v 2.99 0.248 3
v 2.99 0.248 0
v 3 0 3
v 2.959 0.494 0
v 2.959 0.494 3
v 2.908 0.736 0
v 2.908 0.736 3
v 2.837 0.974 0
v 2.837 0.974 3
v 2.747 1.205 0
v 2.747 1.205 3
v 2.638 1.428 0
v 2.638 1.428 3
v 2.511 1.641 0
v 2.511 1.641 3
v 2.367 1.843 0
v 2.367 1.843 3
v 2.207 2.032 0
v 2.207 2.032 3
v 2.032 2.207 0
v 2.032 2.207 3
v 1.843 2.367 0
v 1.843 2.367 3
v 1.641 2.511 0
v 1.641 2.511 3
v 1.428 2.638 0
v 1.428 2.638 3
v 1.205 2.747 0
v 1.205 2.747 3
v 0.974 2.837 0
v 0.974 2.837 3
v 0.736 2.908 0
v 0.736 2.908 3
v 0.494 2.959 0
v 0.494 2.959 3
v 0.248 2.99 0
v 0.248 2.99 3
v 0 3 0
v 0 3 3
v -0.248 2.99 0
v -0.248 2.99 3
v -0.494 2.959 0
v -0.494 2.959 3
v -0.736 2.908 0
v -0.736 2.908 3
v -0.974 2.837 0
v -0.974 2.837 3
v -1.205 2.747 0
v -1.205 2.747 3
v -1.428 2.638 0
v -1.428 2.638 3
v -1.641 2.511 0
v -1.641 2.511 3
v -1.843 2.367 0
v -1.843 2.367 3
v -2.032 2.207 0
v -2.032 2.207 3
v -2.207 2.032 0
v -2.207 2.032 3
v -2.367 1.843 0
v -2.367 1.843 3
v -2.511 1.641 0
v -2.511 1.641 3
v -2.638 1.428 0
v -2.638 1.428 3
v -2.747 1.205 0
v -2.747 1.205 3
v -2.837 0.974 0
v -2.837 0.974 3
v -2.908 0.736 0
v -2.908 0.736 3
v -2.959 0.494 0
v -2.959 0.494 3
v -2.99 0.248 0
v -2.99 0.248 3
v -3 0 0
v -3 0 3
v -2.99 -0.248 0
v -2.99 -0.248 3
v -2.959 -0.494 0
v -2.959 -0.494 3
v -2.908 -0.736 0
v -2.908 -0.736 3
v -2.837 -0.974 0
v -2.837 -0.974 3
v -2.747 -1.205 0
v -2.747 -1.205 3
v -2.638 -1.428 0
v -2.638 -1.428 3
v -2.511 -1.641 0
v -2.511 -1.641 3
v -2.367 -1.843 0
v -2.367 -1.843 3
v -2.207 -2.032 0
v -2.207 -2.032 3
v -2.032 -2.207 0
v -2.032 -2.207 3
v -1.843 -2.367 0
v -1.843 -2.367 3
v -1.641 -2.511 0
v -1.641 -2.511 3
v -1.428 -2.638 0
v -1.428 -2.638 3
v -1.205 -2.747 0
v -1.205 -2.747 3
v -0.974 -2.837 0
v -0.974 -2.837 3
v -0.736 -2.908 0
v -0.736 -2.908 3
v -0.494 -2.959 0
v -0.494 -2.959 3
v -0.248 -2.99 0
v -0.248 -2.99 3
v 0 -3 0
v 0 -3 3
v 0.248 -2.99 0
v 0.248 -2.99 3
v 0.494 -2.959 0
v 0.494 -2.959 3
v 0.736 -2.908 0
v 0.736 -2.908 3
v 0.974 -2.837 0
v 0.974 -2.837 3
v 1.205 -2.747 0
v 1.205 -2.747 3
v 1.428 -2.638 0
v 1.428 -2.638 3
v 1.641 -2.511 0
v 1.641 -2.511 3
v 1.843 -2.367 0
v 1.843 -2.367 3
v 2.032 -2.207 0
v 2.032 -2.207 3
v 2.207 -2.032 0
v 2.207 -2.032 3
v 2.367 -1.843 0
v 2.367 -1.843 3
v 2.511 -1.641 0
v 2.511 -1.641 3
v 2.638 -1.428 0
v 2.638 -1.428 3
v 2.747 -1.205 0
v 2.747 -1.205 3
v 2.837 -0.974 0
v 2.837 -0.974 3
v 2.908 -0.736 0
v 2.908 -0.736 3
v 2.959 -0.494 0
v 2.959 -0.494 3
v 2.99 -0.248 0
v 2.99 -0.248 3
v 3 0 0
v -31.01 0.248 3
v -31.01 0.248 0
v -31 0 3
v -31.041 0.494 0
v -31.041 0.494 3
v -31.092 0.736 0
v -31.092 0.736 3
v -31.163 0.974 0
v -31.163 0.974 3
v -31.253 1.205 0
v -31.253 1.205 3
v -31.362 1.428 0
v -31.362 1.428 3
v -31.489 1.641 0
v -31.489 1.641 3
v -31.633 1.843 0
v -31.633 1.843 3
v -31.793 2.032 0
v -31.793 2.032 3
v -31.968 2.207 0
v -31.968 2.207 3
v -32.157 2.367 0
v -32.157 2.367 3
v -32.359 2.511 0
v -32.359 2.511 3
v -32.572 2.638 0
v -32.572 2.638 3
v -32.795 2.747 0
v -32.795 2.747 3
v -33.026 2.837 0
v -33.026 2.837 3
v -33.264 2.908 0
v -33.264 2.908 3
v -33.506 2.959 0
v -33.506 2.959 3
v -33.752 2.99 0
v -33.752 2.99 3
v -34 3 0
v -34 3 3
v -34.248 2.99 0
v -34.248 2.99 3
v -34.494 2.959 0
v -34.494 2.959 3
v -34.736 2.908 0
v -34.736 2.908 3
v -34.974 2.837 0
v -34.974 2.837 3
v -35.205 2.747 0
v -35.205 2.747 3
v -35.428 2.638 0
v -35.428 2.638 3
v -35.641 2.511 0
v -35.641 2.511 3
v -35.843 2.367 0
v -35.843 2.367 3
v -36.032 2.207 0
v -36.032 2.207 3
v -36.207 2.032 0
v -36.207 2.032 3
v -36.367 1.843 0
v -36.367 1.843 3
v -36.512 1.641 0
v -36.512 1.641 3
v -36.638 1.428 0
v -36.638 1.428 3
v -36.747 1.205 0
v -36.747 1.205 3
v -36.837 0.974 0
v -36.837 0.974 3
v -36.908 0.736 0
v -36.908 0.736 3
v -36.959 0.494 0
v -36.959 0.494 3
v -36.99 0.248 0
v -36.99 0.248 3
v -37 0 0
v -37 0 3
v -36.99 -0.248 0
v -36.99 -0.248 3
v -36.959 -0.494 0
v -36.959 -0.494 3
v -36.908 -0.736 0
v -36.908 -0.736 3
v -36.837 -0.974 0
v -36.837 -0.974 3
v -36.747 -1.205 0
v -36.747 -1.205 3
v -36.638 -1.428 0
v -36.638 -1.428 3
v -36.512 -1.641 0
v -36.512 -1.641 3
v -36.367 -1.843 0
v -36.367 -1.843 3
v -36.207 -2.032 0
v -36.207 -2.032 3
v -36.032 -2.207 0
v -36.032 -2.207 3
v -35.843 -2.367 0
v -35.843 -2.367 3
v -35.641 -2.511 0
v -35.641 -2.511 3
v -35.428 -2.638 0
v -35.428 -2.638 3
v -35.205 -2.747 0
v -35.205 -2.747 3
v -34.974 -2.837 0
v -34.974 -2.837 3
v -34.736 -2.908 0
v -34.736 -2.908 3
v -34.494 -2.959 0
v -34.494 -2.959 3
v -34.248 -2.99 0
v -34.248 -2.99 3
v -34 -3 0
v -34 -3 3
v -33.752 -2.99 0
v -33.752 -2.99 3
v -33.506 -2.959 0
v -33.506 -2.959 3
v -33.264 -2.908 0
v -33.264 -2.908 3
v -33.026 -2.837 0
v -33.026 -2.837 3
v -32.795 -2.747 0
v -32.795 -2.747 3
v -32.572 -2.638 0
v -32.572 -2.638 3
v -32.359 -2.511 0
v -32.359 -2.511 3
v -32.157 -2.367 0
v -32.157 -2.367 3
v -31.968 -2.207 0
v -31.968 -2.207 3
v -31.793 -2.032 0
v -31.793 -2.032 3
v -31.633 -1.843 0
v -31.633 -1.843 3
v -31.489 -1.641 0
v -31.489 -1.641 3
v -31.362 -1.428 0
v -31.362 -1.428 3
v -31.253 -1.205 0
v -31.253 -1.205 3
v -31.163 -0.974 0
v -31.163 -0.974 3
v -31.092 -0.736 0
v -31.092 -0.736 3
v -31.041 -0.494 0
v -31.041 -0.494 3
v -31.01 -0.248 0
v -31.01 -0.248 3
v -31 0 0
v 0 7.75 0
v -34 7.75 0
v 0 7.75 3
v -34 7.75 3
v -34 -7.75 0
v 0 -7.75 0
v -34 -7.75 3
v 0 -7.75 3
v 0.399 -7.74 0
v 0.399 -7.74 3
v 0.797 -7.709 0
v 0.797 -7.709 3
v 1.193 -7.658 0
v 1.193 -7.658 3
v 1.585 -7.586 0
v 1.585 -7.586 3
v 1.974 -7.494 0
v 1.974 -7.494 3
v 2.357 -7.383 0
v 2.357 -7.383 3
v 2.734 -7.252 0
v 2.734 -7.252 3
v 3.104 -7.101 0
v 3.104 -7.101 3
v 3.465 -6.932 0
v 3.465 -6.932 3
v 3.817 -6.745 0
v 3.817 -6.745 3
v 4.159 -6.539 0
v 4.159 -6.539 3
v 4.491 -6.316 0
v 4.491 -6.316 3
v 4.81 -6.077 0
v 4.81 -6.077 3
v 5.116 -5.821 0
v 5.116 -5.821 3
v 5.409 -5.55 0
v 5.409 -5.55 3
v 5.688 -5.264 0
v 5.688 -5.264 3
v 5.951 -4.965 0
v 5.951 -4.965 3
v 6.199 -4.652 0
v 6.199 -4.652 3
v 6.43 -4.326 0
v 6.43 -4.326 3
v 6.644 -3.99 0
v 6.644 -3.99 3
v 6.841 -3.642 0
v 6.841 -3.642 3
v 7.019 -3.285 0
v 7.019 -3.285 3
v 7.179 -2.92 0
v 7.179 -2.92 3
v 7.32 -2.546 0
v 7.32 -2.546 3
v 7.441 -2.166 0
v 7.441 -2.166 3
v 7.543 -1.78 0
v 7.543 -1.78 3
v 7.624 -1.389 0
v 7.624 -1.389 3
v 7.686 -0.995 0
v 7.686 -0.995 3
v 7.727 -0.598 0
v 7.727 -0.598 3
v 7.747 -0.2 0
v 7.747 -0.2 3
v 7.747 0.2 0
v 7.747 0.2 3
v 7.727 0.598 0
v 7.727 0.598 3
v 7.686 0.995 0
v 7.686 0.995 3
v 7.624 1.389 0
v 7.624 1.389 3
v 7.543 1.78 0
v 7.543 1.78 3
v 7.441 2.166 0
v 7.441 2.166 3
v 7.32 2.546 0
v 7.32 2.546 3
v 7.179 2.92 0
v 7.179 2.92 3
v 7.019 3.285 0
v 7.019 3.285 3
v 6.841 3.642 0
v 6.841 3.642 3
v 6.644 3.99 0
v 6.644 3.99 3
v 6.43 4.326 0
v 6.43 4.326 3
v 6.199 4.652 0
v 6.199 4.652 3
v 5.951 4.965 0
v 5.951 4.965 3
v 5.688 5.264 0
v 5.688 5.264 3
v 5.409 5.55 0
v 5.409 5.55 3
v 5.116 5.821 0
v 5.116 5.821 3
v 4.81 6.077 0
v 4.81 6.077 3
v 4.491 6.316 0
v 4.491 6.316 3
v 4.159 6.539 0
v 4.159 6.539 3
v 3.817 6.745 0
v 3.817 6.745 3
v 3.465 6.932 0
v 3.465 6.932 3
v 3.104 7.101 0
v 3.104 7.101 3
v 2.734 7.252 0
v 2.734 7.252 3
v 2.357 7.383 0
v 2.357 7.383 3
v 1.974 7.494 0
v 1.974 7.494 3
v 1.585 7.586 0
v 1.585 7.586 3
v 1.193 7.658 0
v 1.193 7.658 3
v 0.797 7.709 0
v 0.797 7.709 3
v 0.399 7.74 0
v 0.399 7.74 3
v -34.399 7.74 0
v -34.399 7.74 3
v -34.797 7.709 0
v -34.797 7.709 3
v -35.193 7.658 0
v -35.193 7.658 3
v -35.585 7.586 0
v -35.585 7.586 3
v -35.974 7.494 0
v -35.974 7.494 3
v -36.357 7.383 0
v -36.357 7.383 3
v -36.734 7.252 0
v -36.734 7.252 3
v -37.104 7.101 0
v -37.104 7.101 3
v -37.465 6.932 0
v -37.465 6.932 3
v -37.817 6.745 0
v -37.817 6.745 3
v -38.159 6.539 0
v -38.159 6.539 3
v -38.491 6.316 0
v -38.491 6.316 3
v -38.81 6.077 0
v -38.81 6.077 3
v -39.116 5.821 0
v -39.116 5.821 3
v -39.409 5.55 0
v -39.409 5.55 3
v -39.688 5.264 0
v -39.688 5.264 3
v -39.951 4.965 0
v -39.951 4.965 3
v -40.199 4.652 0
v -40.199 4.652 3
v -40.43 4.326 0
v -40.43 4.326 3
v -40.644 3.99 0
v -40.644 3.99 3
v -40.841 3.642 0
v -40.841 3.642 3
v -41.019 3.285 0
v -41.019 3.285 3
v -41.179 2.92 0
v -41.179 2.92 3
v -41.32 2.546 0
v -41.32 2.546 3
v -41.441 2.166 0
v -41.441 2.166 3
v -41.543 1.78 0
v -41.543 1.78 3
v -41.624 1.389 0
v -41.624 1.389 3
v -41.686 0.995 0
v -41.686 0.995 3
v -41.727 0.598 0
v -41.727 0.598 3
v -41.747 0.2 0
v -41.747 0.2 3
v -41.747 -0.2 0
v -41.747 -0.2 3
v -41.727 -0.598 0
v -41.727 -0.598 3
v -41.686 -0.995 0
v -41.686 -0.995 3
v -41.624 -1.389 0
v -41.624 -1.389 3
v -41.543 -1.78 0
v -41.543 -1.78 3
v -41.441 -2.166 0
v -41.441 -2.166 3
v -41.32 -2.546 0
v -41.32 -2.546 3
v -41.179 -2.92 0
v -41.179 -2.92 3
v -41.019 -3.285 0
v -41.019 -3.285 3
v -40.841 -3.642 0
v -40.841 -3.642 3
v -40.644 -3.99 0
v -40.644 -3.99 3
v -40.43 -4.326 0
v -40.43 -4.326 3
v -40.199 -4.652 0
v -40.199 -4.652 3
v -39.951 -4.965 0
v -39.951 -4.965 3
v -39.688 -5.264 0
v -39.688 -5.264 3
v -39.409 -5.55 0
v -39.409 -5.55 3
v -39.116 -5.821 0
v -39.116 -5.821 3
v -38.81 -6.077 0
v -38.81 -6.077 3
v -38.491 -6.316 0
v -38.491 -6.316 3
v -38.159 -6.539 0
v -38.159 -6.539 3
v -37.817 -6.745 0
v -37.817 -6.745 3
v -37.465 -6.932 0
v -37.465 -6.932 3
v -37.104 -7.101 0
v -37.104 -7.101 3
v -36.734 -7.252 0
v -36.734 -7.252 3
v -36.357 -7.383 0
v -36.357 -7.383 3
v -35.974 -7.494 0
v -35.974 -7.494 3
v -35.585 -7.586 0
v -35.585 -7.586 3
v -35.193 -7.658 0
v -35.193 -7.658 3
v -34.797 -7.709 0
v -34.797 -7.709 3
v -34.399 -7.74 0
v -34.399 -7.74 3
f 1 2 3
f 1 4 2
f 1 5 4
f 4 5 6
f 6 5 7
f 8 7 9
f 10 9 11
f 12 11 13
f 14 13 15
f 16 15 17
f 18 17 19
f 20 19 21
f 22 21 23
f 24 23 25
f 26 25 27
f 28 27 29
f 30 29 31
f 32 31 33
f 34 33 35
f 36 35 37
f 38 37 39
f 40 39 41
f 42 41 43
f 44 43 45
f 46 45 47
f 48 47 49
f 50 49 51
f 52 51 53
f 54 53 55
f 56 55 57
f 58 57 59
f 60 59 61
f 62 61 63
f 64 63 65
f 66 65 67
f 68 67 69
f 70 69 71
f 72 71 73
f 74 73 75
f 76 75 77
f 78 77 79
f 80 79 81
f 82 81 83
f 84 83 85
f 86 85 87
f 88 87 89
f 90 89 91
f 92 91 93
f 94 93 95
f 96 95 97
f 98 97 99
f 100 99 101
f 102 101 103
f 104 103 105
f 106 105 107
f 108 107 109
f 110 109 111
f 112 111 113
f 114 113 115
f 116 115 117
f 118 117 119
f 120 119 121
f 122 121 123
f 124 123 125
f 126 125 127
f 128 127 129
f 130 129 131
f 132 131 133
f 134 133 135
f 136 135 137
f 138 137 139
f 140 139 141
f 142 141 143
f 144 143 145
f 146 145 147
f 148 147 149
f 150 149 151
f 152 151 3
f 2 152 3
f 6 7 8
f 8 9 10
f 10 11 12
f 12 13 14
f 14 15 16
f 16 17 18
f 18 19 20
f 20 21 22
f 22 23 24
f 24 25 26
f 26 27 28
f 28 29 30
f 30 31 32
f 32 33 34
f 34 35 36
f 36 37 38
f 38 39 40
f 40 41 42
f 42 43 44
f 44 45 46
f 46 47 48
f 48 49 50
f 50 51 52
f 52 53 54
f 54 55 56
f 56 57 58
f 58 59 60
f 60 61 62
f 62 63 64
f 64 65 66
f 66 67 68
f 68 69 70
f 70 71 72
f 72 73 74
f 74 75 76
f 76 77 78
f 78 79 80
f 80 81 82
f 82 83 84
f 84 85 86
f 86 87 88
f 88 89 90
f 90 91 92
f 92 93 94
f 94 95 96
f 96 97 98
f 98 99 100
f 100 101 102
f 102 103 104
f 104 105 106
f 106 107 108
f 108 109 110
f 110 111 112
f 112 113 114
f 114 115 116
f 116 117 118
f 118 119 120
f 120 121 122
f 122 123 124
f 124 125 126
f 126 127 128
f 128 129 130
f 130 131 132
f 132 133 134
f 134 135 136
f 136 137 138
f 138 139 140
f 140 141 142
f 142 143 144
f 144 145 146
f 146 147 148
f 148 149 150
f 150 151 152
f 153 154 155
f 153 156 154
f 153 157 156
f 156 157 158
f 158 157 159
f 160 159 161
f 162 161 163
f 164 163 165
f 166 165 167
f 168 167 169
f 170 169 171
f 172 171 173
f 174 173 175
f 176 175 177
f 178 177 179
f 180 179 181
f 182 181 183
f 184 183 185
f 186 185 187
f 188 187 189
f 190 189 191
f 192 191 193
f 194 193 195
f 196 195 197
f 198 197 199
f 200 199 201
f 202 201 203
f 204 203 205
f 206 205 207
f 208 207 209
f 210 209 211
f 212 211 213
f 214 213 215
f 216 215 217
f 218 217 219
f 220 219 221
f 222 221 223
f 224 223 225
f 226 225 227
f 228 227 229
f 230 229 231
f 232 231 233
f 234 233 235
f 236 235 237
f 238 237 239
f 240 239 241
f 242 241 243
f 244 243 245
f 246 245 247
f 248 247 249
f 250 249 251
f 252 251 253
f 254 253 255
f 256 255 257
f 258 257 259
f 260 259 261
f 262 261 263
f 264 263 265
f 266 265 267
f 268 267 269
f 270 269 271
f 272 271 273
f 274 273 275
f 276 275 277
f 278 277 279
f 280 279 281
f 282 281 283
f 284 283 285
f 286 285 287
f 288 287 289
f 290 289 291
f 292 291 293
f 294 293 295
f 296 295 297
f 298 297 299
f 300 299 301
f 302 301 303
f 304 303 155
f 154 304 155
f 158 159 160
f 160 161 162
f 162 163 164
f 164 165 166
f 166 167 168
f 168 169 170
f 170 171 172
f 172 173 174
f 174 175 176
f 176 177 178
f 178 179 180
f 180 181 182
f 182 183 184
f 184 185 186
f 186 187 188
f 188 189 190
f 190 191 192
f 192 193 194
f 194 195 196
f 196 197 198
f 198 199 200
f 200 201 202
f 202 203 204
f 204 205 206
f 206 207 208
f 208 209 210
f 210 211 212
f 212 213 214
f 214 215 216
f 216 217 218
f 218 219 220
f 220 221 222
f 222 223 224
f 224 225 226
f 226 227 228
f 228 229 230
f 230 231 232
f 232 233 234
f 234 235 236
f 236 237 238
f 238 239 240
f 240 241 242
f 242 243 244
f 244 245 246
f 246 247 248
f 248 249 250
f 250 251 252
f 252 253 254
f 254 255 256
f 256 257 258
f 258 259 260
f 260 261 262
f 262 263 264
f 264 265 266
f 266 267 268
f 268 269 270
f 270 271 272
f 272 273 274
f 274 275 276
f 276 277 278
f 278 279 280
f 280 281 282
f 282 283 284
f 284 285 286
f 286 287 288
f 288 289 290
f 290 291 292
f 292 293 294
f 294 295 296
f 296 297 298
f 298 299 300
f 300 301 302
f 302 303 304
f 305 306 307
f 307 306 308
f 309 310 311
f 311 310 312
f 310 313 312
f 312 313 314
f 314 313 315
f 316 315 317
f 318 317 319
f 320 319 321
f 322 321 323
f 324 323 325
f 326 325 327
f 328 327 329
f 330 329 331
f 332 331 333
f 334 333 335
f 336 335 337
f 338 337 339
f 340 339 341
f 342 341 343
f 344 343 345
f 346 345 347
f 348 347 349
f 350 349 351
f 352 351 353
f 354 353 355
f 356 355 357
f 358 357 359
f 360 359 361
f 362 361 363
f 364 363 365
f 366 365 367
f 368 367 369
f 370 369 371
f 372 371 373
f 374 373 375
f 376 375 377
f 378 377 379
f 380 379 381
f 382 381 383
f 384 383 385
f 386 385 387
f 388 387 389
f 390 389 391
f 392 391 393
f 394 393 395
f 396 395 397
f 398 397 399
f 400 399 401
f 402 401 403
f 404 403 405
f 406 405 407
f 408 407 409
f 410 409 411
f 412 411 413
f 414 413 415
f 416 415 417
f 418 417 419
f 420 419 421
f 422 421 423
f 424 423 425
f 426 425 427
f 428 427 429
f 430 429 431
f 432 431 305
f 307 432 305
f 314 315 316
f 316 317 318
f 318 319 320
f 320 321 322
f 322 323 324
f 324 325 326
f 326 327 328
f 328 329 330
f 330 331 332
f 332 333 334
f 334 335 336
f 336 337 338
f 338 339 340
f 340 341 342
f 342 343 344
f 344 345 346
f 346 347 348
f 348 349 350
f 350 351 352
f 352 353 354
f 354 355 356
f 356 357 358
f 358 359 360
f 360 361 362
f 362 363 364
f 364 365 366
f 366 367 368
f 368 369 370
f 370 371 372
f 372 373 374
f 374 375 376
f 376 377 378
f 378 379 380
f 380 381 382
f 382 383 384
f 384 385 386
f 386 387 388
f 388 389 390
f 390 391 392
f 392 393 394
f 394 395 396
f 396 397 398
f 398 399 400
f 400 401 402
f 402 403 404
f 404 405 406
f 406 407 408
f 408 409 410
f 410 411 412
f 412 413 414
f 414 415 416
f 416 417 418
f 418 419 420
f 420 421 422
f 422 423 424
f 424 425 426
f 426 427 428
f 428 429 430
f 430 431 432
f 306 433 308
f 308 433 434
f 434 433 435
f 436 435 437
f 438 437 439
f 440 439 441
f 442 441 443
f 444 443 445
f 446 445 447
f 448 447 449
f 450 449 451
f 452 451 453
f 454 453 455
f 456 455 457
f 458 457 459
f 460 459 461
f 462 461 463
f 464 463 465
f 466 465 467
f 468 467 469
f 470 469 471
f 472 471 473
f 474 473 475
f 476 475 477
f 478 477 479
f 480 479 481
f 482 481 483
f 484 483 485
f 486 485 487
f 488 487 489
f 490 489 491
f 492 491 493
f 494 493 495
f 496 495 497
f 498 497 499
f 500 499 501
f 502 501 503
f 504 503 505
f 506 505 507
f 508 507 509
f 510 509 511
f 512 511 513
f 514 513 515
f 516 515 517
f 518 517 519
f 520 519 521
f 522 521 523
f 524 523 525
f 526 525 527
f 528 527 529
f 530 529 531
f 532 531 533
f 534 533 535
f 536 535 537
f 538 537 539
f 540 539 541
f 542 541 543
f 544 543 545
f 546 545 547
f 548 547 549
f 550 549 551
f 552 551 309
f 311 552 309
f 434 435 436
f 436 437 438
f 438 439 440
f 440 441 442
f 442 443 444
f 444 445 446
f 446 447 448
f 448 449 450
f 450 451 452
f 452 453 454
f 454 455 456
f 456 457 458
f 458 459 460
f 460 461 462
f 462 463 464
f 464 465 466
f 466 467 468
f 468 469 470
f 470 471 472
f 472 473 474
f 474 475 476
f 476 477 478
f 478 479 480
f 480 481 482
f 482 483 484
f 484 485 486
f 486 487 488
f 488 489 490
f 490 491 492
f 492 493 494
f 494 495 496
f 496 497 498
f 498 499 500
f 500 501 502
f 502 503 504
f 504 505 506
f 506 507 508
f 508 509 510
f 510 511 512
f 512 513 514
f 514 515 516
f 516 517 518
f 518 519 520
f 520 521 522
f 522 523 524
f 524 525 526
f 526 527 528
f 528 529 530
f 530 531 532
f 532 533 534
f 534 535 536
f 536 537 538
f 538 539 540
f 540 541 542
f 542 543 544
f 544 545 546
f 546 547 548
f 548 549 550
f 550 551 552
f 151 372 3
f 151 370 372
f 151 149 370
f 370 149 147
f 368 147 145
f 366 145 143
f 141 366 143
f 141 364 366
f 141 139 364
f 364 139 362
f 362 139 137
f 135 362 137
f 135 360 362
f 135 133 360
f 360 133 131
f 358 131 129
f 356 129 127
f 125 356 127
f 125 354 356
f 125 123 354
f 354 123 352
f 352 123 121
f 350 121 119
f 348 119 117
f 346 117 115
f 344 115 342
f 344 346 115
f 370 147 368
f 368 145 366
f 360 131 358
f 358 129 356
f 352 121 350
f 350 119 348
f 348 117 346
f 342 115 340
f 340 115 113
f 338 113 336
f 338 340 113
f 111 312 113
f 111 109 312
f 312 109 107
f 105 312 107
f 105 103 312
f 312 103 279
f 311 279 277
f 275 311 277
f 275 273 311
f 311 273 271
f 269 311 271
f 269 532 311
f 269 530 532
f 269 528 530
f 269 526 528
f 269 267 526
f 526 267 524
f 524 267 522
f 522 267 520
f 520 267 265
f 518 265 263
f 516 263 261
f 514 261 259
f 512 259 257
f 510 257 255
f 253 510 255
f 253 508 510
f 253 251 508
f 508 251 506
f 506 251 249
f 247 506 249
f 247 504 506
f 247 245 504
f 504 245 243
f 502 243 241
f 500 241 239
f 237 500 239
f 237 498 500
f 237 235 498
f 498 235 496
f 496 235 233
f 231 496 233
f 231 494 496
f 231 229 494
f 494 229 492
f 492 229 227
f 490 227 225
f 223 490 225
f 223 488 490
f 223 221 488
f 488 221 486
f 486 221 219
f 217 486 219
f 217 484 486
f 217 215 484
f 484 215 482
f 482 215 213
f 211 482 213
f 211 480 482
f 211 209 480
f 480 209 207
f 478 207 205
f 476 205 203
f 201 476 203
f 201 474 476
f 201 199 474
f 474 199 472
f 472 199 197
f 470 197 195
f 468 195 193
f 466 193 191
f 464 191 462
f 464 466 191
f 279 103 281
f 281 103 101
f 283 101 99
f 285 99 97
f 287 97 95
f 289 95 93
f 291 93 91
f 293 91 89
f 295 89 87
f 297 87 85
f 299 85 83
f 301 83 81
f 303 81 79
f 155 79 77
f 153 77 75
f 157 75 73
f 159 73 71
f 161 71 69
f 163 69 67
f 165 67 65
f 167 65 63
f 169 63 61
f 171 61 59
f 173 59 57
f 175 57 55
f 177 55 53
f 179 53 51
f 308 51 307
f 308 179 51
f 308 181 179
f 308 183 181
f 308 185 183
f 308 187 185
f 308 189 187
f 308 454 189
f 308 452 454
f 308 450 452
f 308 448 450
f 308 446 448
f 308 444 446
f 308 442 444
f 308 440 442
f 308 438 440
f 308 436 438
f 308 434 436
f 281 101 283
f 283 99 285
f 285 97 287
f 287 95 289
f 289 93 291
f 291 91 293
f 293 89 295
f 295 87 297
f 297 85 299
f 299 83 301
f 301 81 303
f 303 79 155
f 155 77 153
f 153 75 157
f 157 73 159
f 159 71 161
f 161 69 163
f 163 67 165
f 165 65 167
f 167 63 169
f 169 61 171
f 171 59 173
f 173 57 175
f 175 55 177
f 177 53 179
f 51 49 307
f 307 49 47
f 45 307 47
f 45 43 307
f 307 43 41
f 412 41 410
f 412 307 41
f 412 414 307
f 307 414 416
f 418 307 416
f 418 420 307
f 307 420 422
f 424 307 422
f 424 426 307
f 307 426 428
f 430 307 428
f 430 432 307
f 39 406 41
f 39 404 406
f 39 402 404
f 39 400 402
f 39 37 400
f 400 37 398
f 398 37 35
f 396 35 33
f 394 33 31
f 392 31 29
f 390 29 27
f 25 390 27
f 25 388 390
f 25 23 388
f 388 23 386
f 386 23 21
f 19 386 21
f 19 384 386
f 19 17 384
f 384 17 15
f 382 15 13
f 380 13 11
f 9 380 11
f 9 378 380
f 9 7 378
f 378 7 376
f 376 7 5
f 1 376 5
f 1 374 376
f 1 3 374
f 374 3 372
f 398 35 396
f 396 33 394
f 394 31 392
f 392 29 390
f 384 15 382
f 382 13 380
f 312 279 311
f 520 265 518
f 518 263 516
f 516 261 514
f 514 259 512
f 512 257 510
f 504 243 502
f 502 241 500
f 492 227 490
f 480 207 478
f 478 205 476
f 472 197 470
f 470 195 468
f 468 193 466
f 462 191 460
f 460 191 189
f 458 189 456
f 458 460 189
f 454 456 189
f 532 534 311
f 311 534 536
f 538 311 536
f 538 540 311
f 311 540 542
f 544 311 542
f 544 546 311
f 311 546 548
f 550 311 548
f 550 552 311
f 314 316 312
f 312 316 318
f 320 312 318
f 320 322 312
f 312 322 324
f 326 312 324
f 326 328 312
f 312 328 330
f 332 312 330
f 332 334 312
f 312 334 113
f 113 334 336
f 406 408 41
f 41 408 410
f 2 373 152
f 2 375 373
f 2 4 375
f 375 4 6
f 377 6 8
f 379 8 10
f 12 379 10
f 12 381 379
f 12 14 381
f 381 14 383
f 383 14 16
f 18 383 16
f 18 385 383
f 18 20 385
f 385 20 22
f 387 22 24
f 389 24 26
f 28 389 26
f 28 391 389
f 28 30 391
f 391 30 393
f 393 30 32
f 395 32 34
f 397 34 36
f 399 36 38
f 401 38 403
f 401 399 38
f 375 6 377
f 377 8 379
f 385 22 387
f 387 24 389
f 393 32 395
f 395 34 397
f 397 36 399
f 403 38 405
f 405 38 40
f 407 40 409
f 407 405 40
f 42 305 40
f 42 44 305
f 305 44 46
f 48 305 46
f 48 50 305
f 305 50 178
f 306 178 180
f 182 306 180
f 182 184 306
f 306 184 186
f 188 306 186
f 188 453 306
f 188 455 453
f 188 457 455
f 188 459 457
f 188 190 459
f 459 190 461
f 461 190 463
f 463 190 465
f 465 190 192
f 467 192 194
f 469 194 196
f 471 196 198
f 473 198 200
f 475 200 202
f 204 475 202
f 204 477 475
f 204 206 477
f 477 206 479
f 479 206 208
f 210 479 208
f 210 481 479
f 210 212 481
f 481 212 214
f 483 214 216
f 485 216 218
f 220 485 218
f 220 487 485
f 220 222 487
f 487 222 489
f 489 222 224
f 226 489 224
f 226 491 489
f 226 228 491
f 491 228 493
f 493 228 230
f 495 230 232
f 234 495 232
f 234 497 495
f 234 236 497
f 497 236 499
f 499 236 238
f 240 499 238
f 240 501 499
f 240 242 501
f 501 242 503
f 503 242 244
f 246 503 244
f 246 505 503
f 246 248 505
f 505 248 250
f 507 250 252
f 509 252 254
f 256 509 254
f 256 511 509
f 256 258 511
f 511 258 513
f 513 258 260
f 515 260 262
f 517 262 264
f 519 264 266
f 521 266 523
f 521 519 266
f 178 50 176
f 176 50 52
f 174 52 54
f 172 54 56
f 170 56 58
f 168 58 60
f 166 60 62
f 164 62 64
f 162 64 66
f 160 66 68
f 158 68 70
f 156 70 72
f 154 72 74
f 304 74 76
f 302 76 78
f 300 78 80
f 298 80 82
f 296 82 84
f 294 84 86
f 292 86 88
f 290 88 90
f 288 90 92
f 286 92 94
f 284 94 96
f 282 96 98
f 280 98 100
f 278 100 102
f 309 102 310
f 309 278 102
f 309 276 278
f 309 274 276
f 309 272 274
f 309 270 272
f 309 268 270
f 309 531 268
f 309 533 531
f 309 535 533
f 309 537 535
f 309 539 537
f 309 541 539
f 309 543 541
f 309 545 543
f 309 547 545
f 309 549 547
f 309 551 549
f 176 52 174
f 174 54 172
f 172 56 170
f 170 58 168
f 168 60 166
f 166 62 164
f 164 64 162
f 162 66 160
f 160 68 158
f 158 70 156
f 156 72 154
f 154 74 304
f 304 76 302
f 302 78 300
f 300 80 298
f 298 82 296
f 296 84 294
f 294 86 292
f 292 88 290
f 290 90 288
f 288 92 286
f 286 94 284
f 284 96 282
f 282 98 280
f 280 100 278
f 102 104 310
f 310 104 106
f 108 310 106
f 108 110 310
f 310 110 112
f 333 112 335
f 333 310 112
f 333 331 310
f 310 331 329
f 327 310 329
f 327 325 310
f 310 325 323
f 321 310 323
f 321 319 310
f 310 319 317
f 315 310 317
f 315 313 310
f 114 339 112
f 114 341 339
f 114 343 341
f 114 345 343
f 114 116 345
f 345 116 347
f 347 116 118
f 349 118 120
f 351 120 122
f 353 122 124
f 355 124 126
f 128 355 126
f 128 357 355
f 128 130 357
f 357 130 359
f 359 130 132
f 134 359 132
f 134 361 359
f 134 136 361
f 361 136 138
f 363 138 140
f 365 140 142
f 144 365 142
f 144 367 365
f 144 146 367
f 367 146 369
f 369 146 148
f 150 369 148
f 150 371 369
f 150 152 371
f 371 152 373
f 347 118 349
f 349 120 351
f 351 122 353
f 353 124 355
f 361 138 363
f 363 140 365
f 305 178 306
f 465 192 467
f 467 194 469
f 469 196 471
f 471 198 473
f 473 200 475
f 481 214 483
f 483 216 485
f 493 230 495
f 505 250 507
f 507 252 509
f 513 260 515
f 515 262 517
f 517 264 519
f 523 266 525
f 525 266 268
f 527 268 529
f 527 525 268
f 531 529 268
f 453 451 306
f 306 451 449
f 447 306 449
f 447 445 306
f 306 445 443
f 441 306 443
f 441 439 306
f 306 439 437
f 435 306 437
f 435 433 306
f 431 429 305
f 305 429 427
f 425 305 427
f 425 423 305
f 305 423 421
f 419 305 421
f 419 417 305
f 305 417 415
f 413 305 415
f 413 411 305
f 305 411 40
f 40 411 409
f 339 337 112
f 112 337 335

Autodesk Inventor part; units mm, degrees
ref_plane "YZ Plane" through (0, 0, 0) normal (1, 0, 0) x (0, 1, 0)
ref_plane "XZ Plane" through (0, 0, 0) normal (0, 1, 0) x (-1, 0, 0)
ref_plane "XY Plane" through (0, 0, 0) normal (0, 0, 1) x (1, 0, 0)
sketch "Base" plane through (0, 0, 0) normal (0, 0, 1) x (1, 0, 0)
  circle A0 centre (0, 0) radius 7.75
  line L0 (0, 0) -> (-34, 0) construction
  circle A1 centre (-34, 0) radius 7.75
  circle A2 centre (0, 0) radius 3
  circle A3 centre (-34, 0) radius 3
  line L1 (-34, 7.75) -> (0, 7.75)
  line L2 (-34, -7.75) -> (0, -7.75)
  dimension "d0" = 15.5
  dimension "d1" = 34
  dimension "d3" = 6
extrude "BaseFeature" add sketch "Base" along normal blind 3
properties part number "BackSideConnector"
